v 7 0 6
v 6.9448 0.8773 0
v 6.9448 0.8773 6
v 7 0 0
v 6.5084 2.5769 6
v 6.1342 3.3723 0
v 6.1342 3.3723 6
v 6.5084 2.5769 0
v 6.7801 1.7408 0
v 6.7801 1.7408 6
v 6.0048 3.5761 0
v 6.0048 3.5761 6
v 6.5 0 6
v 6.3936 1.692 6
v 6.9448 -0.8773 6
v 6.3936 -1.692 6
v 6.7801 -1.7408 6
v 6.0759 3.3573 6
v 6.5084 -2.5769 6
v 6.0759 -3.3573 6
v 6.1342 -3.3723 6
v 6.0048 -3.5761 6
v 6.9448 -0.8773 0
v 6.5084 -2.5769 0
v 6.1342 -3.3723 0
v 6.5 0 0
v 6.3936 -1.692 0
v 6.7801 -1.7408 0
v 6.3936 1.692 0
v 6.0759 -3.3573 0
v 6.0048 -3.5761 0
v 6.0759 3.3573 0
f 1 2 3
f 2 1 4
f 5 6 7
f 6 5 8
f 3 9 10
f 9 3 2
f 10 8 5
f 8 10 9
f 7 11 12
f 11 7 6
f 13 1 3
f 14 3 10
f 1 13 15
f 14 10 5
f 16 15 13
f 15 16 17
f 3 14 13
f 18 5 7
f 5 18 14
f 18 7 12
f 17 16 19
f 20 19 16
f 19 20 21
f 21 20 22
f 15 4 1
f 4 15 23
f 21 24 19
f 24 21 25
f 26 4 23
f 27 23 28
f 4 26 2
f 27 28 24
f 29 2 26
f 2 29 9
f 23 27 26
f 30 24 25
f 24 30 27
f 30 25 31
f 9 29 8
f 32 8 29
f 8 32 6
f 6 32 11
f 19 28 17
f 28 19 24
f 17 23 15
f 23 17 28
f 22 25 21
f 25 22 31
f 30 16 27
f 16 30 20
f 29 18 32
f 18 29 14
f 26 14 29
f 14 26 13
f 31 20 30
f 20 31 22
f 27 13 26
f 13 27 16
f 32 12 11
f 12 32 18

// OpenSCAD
$fn = 50;


difference() {
	union() {
		cylinder(h = 6, r = 7.0000000000);
		translate(v = [-10.0000000000, 0, 0]) {
			cylinder(h = 6, r = 7.0000000000);
		}
	}
	union() {
		cylinder(h = 6, r = 3.2500000000);
		cylinder(h = 6, r = 1.8000000000);
		cylinder(h = 6, r = 1.8000000000);
		cylinder(h = 6, r = 1.8000000000);
		translate(v = [-14.5000000000, 0, 0]) {
			hull() {
				translate(v = [-3.7500000000, 0.0000000000, 0]) {
					cylinder(h = 6, r = 10.5000000000);
				}
				translate(v = [3.7500000000, 0.0000000000, 0]) {
					cylinder(h = 6, r = 10.5000000000);
				}
				translate(v = [-3.7500000000, -0.0000000000, 0]) {
					cylinder(h = 6, r = 10.5000000000);
				}
				translate(v = [3.7500000000, -0.0000000000, 0]) {
					cylinder(h = 6, r = 10.5000000000);
				}
			}
		}
		translate(v = [-7.0000000000, 0, 0.0000000000]) {
			cylinder(h = 6, r = 13.5000000000);
		}
	}
}
